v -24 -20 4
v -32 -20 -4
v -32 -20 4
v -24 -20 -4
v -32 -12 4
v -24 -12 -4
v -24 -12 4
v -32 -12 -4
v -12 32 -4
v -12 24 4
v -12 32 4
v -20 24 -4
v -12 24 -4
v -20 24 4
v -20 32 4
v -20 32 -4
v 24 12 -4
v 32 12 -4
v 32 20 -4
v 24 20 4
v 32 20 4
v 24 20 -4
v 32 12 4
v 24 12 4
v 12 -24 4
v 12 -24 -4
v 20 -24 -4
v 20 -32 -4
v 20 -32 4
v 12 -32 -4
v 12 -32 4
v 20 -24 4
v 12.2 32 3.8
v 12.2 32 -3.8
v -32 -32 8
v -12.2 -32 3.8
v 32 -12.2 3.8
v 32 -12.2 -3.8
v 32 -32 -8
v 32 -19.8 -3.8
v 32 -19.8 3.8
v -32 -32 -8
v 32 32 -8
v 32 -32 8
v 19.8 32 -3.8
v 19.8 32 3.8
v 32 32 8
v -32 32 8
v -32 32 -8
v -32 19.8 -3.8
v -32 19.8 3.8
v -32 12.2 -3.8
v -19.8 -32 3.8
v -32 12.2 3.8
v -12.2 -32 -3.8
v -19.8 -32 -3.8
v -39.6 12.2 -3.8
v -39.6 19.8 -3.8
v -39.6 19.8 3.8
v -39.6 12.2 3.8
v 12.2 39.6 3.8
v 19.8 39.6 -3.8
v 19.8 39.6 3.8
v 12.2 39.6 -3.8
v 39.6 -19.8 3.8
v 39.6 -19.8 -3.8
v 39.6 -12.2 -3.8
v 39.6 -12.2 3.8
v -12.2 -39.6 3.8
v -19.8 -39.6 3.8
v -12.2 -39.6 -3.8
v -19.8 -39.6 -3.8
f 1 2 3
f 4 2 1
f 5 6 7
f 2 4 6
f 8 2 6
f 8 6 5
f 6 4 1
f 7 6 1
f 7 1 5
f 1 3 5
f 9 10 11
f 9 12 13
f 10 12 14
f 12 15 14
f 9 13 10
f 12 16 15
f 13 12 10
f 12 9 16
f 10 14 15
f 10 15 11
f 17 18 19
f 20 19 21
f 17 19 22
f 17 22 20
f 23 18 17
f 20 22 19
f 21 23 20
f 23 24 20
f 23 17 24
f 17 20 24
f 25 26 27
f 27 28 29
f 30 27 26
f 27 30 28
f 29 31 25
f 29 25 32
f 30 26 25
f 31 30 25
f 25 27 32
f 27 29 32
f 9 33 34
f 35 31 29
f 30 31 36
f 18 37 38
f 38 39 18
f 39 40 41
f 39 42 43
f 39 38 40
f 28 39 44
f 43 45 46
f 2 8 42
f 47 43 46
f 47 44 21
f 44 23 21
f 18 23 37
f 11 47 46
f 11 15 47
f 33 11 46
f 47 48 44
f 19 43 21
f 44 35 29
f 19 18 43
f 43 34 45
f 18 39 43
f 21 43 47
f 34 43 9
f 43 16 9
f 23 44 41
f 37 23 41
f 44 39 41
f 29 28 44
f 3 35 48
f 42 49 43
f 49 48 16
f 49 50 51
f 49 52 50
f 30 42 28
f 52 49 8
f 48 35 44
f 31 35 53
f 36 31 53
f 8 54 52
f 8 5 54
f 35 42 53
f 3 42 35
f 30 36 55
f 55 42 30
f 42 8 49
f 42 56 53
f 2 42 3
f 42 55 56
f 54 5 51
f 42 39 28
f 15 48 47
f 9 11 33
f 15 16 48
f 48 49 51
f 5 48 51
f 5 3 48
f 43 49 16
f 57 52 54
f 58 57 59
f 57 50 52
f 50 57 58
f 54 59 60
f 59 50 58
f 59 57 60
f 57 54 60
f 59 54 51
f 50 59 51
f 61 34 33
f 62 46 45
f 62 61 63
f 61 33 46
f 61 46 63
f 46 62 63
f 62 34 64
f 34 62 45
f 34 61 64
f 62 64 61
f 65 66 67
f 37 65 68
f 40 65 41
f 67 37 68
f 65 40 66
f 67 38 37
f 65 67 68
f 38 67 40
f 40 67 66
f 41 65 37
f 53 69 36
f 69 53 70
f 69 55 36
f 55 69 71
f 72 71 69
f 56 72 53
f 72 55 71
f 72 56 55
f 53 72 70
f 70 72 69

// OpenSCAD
// file: modules.scad
use <./constants.scad>

module groove() {
    cube([tongueLength, tongueLength, tongueHeight], center = true);
}

module ring() {
    difference() {
        cube([ringWidth, ringDepth, ringHeight], center = true);
        cube([ringWidth - ringThickness, ringDepth - ringThickness, ringHeight], center = true);
    }
}

module tongue() {
    cube([tongueLength - tolerance, tongueLength - tolerance, tongueHeight - tolerance], center = true);
}
// file: constants.scad
$fn = 128;

layerHeight = 0.2;

pitch = 1.25;
scale = 0.5;
slop = 0.25;
tolerance = 0.4;

blockLength = 64;
blockHeight = blockLength / 4;

tongueLength = blockHeight / 2;
tongueHeight = blockHeight / 2;

// Ring
ring = false;
ringWidth = tongueLength;
ringDepth = tongueLength;
ringHeight = blockHeight / 2;
ringThickness = 7.5 * scale;

screwDiameter = blockLength / 4;
screwHeight = blockHeight / 2;

pipeDiameter = blockLength / 2;
pipeHeight = 100;

poleLength = blockHeight;
pinLength = blockHeight / 2;

// Refactor
pipeLength = poleLength;
// main file
include <./constants.scad>
include <./modules.scad>

translate([-((blockLength / 2) + ((tongueLength - tolerance) / 2)), blockLength / 4, 0]) {
    tongue();
}

translate([blockLength / 4, (blockLength / 2) + ((tongueLength - tolerance) / 2), 0]) {
    tongue();
}

translate([(blockLength / 2) + ((tongueLength - tolerance) / 2), -(blockLength / 4), 0]) {
    tongue();
}

translate([-(blockLength / 4), -((blockLength / 2) + ((tongueLength - tolerance) / 2)), 0]) {
    tongue();
}

difference() {
    cube([blockLength, blockLength, blockHeight], center = true);

    union() {
        translate([-((blockLength / 2) - (tongueLength / 2)), -(blockLength / 4), 0]) {
            groove();
        }

        translate([-(blockLength / 4), (blockLength / 2) - (tongueLength / 2), 0]) {
            groove();
        }

        translate([(blockLength / 2) - (tongueLength / 2), blockLength / 4, 0]) {
            groove();
        }

        translate([blockLength / 4, -((blockLength / 2) - (tongueLength / 2)), 0]) {
            groove();
        }

        if(ring) {
            translate([-(blockLength / 2), blockLength / 2, (blockHeight / 2) - (ringHeight / 2)]) {
                ring();
            }
        }
    }
}
